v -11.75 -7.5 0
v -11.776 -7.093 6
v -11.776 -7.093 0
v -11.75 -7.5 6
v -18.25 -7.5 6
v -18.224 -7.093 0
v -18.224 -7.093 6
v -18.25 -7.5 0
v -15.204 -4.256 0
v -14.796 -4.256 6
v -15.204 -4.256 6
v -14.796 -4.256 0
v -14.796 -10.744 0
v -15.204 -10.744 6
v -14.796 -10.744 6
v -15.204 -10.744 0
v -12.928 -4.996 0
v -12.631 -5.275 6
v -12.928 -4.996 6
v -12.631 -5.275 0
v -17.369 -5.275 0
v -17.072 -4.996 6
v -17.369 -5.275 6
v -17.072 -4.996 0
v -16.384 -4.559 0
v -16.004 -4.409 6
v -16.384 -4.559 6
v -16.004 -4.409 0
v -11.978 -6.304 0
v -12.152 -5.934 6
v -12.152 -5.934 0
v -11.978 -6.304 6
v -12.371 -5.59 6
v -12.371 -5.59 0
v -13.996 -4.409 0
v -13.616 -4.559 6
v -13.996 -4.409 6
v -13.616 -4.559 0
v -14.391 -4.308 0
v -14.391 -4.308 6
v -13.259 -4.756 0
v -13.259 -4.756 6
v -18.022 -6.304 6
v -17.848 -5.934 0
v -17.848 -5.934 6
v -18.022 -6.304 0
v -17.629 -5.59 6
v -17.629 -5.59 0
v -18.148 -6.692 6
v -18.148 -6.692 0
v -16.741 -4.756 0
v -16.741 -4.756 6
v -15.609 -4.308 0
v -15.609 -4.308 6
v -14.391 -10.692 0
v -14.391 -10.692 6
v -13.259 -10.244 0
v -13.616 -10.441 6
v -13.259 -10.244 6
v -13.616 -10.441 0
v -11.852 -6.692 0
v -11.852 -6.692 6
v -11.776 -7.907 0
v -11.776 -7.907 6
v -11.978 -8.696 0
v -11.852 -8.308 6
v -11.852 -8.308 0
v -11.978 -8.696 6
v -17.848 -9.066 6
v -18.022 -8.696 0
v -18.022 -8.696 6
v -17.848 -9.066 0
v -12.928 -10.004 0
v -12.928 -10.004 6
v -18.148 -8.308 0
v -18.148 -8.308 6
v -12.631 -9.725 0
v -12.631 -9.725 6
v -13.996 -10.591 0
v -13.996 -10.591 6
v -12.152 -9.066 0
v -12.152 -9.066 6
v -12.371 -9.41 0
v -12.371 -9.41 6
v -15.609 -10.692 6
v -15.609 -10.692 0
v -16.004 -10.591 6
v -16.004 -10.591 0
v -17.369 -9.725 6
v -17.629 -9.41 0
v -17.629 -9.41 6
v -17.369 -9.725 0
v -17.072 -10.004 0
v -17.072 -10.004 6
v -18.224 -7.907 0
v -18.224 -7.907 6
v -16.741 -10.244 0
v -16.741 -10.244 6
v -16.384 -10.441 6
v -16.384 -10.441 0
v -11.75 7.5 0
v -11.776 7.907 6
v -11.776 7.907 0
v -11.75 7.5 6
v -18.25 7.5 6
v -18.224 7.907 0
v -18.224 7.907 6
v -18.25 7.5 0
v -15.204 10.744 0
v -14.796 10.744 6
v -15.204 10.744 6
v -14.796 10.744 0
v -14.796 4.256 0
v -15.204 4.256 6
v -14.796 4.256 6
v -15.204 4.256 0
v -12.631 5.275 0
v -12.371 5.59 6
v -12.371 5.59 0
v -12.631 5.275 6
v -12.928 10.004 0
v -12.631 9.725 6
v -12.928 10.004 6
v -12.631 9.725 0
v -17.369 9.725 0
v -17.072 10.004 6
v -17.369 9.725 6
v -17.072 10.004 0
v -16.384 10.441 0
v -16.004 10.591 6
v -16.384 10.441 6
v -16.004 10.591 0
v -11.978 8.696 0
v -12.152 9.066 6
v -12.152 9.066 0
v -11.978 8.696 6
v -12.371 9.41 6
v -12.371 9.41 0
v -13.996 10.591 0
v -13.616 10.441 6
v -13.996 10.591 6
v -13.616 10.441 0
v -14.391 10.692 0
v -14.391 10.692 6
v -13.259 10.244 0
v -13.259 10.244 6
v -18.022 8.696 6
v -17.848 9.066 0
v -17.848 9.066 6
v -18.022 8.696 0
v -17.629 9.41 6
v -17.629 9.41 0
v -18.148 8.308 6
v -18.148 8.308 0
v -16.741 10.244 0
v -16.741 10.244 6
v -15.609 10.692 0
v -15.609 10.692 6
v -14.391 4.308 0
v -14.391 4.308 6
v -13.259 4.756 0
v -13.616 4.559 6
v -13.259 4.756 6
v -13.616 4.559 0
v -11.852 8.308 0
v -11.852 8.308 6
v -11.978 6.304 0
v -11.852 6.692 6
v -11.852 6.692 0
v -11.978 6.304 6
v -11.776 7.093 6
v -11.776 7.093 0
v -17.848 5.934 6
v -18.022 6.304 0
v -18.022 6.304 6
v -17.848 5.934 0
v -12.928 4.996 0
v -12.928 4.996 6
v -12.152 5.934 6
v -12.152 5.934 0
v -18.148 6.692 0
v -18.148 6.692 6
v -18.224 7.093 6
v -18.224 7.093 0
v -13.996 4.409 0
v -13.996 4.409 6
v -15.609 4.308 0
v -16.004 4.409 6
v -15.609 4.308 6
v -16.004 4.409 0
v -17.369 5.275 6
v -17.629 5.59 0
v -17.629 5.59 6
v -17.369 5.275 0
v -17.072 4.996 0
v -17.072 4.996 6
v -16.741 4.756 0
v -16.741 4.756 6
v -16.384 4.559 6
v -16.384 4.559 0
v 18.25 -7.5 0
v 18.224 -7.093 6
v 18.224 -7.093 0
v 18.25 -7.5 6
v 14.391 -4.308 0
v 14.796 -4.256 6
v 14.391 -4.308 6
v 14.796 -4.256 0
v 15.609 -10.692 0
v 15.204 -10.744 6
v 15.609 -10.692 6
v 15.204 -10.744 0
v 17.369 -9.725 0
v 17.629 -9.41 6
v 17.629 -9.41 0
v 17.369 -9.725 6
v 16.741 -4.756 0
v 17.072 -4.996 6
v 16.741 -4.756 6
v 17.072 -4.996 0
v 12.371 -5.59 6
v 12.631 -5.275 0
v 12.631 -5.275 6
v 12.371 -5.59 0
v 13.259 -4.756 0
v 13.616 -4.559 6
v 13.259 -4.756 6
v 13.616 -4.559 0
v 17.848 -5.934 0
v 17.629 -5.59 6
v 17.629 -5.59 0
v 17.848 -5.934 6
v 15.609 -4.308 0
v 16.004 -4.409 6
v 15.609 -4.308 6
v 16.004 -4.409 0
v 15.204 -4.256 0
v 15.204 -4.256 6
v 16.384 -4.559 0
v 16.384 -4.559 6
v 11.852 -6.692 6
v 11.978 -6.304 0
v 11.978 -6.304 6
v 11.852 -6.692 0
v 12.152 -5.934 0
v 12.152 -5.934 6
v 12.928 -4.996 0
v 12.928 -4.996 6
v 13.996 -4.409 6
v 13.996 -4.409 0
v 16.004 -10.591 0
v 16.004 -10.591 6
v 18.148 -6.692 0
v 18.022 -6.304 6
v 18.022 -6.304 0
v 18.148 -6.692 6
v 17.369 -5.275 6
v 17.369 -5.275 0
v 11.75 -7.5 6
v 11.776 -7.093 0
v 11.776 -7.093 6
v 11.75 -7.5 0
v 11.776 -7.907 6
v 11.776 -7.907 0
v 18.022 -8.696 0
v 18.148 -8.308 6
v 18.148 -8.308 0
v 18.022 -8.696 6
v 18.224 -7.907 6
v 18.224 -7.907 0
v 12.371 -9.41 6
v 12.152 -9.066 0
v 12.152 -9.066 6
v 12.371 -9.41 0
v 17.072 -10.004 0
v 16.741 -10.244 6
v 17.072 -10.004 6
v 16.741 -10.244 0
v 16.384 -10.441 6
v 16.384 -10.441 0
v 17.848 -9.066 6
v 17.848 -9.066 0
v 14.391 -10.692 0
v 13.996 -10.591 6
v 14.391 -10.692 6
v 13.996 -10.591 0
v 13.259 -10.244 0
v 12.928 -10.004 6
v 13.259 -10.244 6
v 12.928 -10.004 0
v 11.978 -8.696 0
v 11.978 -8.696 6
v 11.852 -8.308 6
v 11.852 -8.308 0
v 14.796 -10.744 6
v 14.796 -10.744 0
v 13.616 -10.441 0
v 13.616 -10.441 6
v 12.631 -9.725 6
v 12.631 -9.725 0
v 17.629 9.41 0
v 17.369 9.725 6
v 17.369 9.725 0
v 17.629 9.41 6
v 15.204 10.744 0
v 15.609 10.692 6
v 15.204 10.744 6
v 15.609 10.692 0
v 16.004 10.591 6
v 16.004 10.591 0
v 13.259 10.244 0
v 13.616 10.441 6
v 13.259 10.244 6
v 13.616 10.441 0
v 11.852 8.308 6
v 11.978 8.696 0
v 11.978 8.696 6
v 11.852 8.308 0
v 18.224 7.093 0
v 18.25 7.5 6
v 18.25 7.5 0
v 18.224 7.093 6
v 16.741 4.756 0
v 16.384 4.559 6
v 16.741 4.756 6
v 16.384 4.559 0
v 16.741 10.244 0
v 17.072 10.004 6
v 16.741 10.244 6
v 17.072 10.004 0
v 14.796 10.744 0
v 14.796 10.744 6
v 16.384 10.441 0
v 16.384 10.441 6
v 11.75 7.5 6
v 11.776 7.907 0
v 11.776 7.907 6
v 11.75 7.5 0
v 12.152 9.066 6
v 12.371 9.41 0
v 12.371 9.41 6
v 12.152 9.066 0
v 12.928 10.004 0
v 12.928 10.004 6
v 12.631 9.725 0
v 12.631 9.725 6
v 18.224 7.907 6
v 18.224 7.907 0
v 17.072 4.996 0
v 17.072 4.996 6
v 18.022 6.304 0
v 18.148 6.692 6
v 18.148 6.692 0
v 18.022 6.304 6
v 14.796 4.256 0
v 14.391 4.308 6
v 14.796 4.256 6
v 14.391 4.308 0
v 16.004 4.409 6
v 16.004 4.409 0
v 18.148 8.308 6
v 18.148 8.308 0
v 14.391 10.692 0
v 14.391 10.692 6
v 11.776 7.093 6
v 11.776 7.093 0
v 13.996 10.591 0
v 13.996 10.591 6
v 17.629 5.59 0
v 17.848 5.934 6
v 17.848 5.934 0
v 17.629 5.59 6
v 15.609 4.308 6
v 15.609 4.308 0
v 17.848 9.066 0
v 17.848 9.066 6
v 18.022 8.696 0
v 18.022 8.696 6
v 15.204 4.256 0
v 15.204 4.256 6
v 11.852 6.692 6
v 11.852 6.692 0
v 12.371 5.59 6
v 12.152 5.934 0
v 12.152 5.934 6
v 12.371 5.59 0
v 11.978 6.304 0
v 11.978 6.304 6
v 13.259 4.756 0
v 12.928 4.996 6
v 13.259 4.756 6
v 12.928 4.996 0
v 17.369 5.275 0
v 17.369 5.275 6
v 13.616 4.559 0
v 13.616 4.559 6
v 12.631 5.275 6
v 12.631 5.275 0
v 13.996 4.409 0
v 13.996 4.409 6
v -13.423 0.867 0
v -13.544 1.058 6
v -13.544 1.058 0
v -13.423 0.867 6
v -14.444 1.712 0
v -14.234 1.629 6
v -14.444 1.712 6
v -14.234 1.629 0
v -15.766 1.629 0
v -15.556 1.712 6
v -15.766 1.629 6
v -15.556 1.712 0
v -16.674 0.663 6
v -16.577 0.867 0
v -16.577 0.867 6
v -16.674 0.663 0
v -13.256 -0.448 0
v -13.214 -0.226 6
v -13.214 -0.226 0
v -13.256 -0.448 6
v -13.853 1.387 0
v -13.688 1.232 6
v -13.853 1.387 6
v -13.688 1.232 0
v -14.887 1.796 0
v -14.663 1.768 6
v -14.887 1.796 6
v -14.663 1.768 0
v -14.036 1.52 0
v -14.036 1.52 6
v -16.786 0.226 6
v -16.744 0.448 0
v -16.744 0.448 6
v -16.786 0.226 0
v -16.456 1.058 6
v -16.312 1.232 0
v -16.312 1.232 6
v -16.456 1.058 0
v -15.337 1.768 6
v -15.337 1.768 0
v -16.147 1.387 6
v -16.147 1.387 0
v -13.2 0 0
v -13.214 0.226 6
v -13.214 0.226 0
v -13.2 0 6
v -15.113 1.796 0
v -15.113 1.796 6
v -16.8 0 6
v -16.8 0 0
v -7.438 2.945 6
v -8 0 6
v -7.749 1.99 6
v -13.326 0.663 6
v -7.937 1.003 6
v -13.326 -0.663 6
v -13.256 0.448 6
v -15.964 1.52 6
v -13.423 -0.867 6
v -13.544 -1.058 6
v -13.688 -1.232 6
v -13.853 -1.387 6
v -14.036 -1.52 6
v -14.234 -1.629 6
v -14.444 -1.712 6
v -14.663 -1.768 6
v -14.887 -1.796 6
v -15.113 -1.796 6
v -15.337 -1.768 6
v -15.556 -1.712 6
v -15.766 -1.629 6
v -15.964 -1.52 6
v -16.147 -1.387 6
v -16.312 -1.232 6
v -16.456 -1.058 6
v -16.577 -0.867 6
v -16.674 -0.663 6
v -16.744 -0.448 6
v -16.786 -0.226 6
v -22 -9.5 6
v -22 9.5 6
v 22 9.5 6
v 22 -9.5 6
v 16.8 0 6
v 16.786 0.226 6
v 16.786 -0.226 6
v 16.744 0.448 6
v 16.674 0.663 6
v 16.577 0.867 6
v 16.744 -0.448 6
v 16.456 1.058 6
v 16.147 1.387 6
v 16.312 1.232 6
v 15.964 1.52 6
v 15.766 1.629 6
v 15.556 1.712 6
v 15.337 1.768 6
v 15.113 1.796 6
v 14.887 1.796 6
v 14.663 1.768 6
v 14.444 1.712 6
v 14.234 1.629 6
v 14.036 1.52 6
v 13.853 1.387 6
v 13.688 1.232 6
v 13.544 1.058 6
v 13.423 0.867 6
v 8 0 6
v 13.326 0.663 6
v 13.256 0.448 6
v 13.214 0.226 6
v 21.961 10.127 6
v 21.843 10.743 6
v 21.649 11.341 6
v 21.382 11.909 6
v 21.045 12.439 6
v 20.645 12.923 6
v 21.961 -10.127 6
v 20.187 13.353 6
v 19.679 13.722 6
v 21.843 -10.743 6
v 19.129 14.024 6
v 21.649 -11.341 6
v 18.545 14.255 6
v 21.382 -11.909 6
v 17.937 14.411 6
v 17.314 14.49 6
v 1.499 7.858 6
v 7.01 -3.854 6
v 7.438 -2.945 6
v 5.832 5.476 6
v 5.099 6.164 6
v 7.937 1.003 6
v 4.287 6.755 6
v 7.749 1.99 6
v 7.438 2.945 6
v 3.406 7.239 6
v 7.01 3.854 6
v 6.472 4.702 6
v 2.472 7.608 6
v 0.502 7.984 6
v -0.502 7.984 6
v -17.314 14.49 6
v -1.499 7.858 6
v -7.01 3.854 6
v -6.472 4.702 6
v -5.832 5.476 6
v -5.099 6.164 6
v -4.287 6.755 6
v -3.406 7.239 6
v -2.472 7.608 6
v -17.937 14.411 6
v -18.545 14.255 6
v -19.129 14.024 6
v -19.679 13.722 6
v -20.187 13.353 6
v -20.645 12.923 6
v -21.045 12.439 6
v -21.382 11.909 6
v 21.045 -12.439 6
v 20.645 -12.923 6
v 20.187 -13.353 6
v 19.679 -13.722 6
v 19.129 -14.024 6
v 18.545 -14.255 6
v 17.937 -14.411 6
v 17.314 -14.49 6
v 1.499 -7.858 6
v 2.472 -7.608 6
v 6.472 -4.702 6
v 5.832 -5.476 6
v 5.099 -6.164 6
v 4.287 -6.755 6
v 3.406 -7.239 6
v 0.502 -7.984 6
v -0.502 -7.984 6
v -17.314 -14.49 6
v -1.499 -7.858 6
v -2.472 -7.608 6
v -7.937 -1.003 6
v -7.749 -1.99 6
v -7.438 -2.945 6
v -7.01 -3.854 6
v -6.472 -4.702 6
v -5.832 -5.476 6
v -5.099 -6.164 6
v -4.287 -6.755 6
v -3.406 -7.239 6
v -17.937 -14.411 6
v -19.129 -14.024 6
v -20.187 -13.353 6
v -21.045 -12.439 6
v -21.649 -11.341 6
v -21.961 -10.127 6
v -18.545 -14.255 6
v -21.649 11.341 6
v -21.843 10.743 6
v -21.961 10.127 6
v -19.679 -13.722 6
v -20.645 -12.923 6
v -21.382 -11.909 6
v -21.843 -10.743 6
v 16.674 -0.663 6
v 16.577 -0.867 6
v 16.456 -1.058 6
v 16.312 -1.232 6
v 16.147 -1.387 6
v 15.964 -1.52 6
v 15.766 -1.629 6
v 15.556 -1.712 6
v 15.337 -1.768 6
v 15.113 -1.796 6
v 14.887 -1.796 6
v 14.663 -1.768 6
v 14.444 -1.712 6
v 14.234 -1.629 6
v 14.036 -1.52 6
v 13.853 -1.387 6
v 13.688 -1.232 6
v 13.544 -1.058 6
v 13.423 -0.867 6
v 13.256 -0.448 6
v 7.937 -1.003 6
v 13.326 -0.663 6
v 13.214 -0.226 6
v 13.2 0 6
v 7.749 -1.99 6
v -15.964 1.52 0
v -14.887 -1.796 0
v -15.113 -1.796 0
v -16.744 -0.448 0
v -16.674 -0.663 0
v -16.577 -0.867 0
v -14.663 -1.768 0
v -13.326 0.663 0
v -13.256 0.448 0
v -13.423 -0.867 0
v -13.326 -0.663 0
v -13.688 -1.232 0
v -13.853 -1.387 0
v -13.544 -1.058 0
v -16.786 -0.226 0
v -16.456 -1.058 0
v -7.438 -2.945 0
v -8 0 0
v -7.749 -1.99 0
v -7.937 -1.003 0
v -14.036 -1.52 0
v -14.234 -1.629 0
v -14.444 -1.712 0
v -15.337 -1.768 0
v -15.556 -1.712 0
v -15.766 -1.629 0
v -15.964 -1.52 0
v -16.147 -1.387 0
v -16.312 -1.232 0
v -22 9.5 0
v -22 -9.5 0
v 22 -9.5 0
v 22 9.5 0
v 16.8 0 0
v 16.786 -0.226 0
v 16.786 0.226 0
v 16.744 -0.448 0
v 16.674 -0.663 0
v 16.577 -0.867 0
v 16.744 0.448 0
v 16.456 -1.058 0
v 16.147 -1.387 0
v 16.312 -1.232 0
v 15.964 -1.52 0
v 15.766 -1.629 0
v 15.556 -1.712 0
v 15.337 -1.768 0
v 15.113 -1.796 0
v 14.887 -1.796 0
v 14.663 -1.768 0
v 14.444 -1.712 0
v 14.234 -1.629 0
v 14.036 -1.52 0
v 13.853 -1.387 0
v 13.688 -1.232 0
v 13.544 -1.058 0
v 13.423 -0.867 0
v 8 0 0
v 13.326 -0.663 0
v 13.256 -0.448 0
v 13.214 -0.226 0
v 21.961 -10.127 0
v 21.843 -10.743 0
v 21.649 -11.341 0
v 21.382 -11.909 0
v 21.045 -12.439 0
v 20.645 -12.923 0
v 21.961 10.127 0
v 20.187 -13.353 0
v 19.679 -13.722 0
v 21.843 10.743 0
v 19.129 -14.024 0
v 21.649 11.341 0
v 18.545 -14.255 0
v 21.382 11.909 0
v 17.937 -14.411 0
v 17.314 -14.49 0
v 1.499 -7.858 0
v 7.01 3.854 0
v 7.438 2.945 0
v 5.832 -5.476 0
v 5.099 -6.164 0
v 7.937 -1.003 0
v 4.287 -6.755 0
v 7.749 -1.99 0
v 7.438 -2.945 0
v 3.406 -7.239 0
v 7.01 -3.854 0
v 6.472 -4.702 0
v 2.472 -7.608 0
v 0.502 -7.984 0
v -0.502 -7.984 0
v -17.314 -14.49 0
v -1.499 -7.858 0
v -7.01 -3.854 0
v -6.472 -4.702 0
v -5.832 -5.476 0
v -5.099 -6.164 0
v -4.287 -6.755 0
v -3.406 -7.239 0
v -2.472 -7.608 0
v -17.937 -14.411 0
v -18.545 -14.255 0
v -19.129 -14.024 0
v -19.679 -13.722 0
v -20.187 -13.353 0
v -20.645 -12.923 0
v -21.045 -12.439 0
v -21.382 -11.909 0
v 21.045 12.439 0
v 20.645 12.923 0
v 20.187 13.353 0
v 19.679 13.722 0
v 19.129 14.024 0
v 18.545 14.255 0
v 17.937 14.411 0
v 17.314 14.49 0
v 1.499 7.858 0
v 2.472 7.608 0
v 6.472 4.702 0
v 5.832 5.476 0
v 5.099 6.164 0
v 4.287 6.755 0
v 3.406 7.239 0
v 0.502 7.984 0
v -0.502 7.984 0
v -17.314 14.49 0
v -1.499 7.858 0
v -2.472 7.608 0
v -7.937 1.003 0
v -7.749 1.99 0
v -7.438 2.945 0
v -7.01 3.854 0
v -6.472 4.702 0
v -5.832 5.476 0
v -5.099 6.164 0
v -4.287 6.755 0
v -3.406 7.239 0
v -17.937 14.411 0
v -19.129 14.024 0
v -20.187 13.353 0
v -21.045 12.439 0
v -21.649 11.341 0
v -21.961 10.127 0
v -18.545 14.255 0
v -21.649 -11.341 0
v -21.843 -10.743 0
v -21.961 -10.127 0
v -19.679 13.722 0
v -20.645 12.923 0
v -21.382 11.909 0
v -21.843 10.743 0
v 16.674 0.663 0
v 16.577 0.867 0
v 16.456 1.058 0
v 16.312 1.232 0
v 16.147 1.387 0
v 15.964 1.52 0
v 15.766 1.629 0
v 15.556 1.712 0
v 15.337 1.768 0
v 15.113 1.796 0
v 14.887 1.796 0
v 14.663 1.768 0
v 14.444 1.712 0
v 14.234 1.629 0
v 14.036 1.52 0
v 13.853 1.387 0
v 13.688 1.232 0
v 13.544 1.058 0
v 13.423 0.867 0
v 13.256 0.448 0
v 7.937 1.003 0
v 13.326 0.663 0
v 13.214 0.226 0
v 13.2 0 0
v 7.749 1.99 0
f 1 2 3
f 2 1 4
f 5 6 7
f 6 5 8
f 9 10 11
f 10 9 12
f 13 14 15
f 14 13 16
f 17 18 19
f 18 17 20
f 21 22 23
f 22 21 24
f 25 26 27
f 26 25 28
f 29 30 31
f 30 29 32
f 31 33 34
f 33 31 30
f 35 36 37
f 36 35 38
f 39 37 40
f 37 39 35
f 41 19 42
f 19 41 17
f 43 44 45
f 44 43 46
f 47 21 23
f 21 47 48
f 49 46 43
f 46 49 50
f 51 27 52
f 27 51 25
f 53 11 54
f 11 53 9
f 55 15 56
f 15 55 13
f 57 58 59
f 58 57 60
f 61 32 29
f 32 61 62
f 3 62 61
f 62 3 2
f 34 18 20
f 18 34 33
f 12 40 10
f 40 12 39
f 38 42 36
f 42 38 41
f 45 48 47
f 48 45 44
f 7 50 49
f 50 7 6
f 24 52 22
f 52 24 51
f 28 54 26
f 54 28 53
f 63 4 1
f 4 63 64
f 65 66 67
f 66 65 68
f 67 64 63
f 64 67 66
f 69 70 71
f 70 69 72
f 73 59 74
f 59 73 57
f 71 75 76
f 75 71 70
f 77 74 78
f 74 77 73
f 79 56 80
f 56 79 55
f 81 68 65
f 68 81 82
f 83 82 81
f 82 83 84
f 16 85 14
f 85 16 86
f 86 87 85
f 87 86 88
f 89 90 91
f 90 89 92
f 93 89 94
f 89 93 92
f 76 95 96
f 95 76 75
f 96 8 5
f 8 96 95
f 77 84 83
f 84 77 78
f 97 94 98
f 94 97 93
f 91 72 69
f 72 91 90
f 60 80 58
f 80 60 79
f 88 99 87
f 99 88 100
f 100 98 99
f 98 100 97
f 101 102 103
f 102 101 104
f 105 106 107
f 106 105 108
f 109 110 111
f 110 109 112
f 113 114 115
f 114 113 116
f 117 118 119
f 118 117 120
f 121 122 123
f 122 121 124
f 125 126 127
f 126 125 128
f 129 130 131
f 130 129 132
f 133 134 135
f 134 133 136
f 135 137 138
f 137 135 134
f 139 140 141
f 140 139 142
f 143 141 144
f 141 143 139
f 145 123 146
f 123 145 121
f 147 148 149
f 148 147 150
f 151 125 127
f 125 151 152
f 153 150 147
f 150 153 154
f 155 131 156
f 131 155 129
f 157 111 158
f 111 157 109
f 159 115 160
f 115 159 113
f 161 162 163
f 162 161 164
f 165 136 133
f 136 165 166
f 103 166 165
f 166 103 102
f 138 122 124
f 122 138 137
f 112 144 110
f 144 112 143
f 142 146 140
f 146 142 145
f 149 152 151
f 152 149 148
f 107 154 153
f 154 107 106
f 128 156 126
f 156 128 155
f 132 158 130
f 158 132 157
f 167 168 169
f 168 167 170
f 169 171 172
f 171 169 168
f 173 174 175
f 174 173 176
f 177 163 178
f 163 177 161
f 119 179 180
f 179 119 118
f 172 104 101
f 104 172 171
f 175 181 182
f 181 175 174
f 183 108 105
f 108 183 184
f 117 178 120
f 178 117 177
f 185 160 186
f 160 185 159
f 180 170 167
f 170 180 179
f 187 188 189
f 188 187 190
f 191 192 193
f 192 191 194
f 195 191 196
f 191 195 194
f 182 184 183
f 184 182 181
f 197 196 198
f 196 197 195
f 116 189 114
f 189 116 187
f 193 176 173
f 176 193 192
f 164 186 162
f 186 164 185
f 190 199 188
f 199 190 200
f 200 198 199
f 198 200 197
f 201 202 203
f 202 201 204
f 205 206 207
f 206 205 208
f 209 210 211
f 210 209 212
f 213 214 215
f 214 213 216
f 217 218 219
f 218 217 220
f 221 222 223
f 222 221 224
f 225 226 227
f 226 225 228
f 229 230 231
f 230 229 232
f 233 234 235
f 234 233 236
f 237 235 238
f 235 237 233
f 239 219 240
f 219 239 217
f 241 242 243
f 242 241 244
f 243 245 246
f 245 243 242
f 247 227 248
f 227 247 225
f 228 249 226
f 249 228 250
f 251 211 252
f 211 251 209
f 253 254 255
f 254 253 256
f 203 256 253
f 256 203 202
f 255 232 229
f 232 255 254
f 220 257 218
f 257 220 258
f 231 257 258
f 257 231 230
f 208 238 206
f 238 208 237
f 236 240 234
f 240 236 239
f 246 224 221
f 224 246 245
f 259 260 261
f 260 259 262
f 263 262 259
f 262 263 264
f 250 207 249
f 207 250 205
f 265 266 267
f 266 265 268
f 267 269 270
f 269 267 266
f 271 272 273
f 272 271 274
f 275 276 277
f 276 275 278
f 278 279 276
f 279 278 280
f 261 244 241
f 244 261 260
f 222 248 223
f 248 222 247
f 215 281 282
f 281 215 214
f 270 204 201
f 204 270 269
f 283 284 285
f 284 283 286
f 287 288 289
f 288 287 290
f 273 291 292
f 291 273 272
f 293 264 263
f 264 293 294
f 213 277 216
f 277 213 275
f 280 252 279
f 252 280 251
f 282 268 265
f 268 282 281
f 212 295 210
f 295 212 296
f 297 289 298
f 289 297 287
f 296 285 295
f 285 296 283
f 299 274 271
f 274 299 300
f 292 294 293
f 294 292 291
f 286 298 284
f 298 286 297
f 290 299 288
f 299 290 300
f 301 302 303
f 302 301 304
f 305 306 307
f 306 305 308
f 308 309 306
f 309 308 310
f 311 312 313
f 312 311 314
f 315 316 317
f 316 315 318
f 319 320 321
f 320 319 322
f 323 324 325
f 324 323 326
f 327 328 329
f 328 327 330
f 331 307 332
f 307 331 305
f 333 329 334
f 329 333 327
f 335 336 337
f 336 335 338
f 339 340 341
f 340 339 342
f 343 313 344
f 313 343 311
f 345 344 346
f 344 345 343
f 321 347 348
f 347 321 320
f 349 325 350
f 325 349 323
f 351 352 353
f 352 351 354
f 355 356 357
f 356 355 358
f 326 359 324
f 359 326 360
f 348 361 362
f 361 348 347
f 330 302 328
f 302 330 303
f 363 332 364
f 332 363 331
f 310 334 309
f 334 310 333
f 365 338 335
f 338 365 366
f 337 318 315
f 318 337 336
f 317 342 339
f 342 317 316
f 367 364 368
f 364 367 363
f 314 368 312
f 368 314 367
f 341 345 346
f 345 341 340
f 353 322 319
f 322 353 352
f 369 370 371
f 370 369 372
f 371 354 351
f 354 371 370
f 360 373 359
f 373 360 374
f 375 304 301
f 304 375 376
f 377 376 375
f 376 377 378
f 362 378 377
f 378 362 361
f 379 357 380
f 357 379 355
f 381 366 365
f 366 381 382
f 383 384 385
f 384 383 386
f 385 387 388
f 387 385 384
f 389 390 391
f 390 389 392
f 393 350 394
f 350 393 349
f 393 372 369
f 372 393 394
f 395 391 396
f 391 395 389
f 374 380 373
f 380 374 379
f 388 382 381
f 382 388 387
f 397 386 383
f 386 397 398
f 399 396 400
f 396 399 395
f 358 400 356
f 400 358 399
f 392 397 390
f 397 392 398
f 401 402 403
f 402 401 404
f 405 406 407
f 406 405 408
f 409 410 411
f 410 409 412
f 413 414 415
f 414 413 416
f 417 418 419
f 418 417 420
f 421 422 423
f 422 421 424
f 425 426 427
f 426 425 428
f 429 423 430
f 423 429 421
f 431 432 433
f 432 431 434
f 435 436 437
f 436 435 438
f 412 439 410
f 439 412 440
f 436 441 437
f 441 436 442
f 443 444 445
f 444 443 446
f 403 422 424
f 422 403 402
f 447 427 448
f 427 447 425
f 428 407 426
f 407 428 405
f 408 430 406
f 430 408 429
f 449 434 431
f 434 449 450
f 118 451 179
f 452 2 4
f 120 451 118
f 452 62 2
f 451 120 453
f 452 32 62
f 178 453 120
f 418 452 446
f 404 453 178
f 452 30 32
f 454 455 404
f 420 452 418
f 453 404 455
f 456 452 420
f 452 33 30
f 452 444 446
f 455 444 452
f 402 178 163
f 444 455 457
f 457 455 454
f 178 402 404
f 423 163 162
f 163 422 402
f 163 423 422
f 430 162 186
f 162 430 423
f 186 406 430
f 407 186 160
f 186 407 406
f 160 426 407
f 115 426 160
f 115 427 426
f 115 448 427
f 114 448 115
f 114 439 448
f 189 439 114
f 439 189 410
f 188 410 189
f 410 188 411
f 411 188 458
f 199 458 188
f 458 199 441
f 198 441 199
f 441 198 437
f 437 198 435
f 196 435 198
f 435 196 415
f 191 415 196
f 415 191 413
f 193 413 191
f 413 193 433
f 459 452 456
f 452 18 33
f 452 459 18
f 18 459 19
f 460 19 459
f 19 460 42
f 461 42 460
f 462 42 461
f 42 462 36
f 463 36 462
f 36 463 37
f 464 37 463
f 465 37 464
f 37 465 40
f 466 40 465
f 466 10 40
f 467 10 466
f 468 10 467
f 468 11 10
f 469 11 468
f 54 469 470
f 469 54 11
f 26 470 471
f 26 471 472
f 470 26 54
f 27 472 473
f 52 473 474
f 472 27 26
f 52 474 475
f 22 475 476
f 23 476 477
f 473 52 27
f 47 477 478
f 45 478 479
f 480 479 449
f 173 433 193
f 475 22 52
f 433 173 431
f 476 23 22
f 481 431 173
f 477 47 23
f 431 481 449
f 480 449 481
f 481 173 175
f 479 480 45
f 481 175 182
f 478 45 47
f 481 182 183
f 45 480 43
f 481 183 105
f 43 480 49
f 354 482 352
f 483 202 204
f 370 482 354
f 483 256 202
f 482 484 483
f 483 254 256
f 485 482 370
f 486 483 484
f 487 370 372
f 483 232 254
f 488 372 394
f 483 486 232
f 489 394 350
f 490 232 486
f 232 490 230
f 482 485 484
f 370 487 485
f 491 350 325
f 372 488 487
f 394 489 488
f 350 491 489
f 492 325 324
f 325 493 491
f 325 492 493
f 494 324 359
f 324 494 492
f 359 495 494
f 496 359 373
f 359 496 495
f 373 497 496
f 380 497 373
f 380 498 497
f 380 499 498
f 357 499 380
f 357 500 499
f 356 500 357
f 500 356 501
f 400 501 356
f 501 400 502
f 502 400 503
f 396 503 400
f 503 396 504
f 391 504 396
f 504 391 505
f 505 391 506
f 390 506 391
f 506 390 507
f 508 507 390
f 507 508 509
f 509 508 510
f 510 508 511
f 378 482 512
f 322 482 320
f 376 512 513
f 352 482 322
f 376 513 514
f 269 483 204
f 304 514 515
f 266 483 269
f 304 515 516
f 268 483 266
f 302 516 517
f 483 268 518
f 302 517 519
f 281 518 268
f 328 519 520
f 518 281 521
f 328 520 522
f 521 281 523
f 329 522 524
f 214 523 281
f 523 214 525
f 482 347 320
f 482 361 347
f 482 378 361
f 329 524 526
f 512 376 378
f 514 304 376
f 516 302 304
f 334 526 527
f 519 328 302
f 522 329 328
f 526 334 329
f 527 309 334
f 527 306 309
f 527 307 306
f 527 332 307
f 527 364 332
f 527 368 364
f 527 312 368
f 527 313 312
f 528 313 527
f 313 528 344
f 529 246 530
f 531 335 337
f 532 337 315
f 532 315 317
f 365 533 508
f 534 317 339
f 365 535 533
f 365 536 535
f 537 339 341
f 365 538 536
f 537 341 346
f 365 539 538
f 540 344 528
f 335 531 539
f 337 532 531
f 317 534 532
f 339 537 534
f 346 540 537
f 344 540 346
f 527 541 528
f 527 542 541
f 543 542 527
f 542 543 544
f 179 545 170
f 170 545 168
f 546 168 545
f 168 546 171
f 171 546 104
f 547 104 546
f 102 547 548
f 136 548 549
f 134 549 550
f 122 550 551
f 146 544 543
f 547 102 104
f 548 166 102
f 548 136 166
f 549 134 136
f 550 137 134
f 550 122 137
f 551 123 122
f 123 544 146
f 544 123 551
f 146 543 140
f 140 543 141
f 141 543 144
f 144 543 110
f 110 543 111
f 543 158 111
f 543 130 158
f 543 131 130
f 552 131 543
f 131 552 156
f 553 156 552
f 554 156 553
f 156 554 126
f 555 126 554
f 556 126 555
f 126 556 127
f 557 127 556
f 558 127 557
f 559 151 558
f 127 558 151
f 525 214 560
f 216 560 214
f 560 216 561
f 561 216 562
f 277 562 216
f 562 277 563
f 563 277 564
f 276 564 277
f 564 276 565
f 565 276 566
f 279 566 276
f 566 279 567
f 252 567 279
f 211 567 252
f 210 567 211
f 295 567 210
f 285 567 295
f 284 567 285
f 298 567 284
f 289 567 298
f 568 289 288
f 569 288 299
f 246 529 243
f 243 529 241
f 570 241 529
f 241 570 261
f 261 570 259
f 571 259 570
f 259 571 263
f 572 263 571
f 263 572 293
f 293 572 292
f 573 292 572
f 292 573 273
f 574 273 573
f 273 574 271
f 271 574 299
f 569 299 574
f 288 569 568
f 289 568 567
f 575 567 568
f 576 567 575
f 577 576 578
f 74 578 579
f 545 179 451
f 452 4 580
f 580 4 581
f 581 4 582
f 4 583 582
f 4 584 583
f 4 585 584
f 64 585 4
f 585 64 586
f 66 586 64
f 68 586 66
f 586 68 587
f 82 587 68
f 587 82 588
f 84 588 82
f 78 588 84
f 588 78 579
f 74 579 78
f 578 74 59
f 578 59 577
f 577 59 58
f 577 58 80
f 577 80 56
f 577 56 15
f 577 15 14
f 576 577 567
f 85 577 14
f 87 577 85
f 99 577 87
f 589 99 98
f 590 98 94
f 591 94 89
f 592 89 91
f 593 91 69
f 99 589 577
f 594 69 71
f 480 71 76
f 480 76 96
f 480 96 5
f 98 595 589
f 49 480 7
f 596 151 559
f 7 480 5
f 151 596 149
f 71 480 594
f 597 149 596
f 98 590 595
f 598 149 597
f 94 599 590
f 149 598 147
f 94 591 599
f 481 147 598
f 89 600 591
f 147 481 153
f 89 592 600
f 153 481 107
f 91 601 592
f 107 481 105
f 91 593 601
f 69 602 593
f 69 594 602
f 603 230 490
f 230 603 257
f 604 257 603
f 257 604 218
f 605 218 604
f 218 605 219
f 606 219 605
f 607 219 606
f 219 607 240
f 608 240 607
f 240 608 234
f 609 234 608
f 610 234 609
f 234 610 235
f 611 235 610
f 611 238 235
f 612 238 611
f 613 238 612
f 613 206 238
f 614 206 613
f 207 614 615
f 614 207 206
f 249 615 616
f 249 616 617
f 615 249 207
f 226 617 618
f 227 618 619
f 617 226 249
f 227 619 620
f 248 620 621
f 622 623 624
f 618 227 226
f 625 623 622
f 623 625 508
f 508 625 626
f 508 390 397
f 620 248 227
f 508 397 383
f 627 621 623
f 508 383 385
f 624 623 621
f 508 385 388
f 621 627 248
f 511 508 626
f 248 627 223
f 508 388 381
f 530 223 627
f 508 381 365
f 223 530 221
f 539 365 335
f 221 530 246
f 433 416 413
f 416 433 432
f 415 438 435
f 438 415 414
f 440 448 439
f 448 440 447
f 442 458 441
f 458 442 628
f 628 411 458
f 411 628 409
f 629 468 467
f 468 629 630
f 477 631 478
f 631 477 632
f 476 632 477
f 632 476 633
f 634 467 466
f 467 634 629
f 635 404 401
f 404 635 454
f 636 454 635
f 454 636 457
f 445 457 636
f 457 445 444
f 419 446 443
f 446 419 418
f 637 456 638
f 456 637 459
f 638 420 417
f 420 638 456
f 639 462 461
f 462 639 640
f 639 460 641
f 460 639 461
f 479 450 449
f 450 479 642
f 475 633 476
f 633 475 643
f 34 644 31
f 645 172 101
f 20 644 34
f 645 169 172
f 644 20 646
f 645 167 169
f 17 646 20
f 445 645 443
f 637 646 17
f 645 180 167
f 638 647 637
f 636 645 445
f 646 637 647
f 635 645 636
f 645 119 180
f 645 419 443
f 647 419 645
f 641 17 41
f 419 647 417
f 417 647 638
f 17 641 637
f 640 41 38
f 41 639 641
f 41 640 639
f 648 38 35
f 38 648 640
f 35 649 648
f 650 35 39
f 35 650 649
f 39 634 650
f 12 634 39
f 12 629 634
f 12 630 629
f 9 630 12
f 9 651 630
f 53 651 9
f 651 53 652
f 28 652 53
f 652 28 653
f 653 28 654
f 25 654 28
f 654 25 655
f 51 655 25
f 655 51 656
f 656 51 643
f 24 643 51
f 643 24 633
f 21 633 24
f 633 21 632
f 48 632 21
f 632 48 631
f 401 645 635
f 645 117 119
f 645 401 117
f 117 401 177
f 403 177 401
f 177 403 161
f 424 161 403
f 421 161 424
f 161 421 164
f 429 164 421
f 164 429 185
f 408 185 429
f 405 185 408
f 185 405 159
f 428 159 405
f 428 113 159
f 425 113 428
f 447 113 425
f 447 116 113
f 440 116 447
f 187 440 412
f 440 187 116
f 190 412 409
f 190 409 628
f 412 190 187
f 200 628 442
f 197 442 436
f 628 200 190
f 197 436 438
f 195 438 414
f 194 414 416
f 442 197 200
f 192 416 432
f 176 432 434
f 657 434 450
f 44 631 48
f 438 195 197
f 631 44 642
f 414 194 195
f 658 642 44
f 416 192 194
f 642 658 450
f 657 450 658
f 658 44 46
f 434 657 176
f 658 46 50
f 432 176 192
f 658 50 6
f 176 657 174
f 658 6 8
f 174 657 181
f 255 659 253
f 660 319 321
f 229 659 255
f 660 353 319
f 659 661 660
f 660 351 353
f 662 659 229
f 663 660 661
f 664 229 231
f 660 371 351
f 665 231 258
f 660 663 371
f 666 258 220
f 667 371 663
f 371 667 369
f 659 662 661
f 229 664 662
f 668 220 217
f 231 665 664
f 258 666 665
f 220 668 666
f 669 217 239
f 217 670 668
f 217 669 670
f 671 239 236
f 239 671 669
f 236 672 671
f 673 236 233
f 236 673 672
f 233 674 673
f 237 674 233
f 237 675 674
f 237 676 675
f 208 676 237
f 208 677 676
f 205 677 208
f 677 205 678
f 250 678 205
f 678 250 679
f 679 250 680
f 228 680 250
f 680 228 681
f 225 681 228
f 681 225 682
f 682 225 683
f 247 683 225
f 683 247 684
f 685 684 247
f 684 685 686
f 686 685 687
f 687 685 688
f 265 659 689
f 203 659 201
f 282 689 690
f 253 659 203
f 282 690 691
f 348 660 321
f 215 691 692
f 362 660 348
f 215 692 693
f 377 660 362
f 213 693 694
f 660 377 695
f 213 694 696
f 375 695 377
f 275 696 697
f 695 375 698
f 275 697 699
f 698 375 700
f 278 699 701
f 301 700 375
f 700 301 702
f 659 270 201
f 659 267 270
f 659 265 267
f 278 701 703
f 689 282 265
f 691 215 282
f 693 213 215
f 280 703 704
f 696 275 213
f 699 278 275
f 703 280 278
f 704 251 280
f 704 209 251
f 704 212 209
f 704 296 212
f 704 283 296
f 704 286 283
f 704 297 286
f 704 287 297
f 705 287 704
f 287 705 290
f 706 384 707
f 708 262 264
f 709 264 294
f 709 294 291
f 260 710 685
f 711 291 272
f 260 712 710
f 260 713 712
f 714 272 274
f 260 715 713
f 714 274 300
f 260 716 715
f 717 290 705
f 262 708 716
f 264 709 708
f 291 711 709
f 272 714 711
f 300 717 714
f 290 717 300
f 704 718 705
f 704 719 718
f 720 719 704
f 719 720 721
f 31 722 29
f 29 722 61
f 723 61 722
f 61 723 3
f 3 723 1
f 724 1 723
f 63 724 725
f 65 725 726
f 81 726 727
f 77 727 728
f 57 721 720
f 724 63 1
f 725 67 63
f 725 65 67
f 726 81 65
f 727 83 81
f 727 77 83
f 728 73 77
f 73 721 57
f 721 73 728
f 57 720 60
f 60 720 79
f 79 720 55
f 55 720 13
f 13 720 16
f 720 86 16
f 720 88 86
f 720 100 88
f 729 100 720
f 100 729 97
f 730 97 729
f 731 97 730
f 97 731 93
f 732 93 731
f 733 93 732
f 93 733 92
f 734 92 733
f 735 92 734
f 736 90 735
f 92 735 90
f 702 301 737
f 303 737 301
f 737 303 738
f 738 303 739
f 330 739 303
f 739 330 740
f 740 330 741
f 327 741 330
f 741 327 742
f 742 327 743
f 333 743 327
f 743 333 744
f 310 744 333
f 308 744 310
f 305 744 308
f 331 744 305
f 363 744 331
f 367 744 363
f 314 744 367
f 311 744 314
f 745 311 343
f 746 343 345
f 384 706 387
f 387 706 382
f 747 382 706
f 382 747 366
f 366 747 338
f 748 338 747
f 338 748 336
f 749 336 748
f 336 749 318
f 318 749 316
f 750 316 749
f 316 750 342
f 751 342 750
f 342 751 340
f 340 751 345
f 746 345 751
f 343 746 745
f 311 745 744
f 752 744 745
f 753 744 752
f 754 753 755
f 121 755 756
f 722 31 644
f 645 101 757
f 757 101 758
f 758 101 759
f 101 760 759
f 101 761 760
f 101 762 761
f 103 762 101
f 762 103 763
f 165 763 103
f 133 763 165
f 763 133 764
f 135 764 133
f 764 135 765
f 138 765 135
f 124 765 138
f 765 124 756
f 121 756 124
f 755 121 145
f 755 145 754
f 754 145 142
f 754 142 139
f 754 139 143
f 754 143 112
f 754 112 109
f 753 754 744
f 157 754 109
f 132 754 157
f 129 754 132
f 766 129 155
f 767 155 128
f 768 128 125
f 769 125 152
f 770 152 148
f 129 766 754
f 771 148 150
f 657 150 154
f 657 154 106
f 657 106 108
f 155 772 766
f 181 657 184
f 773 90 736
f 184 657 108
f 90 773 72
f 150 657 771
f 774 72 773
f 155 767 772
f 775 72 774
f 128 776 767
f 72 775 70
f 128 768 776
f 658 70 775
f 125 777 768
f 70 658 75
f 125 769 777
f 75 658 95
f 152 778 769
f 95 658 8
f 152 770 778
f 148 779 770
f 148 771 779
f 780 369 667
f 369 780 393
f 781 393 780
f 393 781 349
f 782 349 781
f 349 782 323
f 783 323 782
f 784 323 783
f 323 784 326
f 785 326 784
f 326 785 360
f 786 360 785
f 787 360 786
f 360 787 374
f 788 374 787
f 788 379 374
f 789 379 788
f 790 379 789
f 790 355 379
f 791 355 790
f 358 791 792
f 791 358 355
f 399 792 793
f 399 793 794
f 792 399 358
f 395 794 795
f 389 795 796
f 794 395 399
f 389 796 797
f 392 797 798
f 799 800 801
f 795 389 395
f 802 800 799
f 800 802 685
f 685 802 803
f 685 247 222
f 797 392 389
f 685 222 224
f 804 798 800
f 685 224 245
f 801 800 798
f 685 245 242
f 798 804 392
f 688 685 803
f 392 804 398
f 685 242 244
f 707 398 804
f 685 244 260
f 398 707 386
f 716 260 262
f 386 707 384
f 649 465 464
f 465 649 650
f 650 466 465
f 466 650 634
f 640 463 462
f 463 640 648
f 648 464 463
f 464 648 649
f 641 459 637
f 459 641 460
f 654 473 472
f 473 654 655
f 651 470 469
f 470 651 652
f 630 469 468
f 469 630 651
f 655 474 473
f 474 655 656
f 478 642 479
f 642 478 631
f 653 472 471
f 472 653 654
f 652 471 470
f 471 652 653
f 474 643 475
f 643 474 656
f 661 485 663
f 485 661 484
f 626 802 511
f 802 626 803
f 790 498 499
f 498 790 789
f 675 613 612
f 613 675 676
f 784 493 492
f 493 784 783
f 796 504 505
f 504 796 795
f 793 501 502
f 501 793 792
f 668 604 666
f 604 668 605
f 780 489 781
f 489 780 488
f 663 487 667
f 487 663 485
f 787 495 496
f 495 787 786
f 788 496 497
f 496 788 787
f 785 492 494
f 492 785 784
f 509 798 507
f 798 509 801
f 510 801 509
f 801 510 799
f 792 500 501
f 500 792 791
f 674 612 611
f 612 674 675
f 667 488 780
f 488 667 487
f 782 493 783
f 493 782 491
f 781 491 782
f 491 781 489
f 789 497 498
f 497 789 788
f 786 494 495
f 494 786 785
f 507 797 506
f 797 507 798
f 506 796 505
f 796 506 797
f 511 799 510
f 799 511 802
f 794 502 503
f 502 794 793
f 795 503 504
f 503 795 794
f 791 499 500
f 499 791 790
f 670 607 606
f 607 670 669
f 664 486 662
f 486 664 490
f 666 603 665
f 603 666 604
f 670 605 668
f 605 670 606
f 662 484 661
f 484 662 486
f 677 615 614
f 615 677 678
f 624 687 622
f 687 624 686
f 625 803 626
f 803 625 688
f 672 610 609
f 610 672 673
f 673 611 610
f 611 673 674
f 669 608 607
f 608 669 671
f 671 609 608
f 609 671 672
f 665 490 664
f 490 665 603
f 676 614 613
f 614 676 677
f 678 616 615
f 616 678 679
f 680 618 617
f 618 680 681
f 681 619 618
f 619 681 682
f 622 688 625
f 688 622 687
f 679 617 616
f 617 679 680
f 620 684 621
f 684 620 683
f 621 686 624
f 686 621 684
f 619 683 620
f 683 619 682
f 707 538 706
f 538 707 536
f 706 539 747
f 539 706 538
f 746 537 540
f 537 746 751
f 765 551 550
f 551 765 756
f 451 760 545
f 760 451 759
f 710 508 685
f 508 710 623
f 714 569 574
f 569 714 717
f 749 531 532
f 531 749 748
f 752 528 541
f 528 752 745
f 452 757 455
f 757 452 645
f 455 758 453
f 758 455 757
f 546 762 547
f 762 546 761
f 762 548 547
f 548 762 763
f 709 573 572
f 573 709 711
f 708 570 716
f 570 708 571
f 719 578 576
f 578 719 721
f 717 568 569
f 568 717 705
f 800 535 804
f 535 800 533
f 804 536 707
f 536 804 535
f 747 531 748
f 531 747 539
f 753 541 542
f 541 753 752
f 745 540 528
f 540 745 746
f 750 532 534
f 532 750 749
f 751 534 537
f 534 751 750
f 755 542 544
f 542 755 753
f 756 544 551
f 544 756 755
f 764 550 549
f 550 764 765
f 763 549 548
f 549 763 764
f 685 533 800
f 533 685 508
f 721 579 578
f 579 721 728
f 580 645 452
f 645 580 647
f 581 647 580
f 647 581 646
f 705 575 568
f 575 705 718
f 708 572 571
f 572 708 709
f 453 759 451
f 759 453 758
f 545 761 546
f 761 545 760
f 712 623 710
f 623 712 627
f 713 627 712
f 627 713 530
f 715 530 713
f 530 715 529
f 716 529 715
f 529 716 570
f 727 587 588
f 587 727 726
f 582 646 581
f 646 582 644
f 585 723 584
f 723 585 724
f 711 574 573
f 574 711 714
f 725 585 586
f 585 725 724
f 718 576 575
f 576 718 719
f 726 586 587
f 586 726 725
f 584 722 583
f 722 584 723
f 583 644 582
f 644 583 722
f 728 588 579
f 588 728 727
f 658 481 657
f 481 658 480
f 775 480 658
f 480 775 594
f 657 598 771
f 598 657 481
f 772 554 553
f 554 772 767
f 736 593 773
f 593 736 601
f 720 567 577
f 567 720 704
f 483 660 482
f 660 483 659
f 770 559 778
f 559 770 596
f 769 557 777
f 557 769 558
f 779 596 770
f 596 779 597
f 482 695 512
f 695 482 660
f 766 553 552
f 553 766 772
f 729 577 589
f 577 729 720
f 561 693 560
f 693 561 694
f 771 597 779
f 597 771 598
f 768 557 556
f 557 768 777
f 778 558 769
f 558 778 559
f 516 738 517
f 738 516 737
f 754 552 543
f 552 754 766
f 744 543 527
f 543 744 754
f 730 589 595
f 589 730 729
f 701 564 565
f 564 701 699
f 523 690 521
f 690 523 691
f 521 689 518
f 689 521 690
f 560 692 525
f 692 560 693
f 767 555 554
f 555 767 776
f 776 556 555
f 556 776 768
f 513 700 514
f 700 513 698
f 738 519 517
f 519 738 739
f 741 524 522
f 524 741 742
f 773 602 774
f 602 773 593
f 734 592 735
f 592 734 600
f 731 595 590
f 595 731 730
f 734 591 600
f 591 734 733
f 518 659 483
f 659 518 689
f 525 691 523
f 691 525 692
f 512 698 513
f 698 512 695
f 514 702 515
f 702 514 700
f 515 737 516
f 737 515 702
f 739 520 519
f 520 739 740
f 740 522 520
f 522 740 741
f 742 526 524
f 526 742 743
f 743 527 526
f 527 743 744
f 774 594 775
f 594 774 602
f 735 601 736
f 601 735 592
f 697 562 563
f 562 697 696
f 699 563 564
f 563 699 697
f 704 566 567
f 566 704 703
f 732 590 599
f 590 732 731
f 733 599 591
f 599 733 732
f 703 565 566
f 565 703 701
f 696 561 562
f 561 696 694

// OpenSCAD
$fn = 50;


difference() {
	union() {
		hull() {
			translate(v = [-17.0000000000, 9.5000000000, 0]) {
				cylinder(h = 6, r = 5);
			}
			translate(v = [17.0000000000, 9.5000000000, 0]) {
				cylinder(h = 6, r = 5);
			}
			translate(v = [-17.0000000000, -9.5000000000, 0]) {
				cylinder(h = 6, r = 5);
			}
			translate(v = [17.0000000000, -9.5000000000, 0]) {
				cylinder(h = 6, r = 5);
			}
		}
	}
	union() {
		#translate(v = [-15.0000000000, -7.5000000000, 0]) {
			cylinder(h = 6, r = 3.2500000000);
		}
		#translate(v = [-15.0000000000, 7.5000000000, 0]) {
			cylinder(h = 6, r = 3.2500000000);
		}
		#translate(v = [15.0000000000, -7.5000000000, 0]) {
			cylinder(h = 6, r = 3.2500000000);
		}
		#translate(v = [15.0000000000, 7.5000000000, 0]) {
			cylinder(h = 6, r = 3.2500000000);
		}
		#translate(v = [-15.0000000000, -7.5000000000, -100.0000000000]) {
			cylinder(h = 200, r = 3.2500000000);
		}
		#translate(v = [-15.0000000000, 7.5000000000, -100.0000000000]) {
			cylinder(h = 200, r = 3.2500000000);
		}
		#translate(v = [15.0000000000, -7.5000000000, -100.0000000000]) {
			cylinder(h = 200, r = 3.2500000000);
		}
		#translate(v = [15.0000000000, 7.5000000000, -100.0000000000]) {
			cylinder(h = 200, r = 3.2500000000);
		}
		#translate(v = [-15.0000000000, -7.5000000000, 0]) {
			cylinder(h = 6, r = 1.8000000000);
		}
		#translate(v = [-15.0000000000, 0.0000000000, 0]) {
			cylinder(h = 6, r = 1.8000000000);
		}
		#translate(v = [-15.0000000000, 7.5000000000, 0]) {
			cylinder(h = 6, r = 1.8000000000);
		}
		#translate(v = [15.0000000000, -7.5000000000, 0]) {
			cylinder(h = 6, r = 1.8000000000);
		}
		#translate(v = [15.0000000000, 0.0000000000, 0]) {
			cylinder(h = 6, r = 1.8000000000);
		}
		#translate(v = [15.0000000000, 7.5000000000, 0]) {
			cylinder(h = 6, r = 1.8000000000);
		}
		#translate(v = [-15.0000000000, -7.5000000000, 0]) {
			cylinder(h = 6, r = 1.8000000000);
		}
		#translate(v = [-15.0000000000, 0.0000000000, 0]) {
			cylinder(h = 6, r = 1.8000000000);
		}
		#translate(v = [-15.0000000000, 7.5000000000, 0]) {
			cylinder(h = 6, r = 1.8000000000);
		}
		#translate(v = [15.0000000000, -7.5000000000, 0]) {
			cylinder(h = 6, r = 1.8000000000);
		}
		#translate(v = [15.0000000000, 0.0000000000, 0]) {
			cylinder(h = 6, r = 1.8000000000);
		}
		#translate(v = [15.0000000000, 7.5000000000, 0]) {
			cylinder(h = 6, r = 1.8000000000);
		}
		#translate(v = [-15.0000000000, -7.5000000000, 0]) {
			cylinder(h = 6, r = 1.8000000000);
		}
		#translate(v = [-15.0000000000, 0.0000000000, 0]) {
			cylinder(h = 6, r = 1.8000000000);
		}
		#translate(v = [-15.0000000000, 7.5000000000, 0]) {
			cylinder(h = 6, r = 1.8000000000);
		}
		#translate(v = [15.0000000000, -7.5000000000, 0]) {
			cylinder(h = 6, r = 1.8000000000);
		}
		#translate(v = [15.0000000000, 0.0000000000, 0]) {
			cylinder(h = 6, r = 1.8000000000);
		}
		#translate(v = [15.0000000000, 7.5000000000, 0]) {
			cylinder(h = 6, r = 1.8000000000);
		}
		#cylinder(h = 6, r = 8.0000000000);
	}
}
